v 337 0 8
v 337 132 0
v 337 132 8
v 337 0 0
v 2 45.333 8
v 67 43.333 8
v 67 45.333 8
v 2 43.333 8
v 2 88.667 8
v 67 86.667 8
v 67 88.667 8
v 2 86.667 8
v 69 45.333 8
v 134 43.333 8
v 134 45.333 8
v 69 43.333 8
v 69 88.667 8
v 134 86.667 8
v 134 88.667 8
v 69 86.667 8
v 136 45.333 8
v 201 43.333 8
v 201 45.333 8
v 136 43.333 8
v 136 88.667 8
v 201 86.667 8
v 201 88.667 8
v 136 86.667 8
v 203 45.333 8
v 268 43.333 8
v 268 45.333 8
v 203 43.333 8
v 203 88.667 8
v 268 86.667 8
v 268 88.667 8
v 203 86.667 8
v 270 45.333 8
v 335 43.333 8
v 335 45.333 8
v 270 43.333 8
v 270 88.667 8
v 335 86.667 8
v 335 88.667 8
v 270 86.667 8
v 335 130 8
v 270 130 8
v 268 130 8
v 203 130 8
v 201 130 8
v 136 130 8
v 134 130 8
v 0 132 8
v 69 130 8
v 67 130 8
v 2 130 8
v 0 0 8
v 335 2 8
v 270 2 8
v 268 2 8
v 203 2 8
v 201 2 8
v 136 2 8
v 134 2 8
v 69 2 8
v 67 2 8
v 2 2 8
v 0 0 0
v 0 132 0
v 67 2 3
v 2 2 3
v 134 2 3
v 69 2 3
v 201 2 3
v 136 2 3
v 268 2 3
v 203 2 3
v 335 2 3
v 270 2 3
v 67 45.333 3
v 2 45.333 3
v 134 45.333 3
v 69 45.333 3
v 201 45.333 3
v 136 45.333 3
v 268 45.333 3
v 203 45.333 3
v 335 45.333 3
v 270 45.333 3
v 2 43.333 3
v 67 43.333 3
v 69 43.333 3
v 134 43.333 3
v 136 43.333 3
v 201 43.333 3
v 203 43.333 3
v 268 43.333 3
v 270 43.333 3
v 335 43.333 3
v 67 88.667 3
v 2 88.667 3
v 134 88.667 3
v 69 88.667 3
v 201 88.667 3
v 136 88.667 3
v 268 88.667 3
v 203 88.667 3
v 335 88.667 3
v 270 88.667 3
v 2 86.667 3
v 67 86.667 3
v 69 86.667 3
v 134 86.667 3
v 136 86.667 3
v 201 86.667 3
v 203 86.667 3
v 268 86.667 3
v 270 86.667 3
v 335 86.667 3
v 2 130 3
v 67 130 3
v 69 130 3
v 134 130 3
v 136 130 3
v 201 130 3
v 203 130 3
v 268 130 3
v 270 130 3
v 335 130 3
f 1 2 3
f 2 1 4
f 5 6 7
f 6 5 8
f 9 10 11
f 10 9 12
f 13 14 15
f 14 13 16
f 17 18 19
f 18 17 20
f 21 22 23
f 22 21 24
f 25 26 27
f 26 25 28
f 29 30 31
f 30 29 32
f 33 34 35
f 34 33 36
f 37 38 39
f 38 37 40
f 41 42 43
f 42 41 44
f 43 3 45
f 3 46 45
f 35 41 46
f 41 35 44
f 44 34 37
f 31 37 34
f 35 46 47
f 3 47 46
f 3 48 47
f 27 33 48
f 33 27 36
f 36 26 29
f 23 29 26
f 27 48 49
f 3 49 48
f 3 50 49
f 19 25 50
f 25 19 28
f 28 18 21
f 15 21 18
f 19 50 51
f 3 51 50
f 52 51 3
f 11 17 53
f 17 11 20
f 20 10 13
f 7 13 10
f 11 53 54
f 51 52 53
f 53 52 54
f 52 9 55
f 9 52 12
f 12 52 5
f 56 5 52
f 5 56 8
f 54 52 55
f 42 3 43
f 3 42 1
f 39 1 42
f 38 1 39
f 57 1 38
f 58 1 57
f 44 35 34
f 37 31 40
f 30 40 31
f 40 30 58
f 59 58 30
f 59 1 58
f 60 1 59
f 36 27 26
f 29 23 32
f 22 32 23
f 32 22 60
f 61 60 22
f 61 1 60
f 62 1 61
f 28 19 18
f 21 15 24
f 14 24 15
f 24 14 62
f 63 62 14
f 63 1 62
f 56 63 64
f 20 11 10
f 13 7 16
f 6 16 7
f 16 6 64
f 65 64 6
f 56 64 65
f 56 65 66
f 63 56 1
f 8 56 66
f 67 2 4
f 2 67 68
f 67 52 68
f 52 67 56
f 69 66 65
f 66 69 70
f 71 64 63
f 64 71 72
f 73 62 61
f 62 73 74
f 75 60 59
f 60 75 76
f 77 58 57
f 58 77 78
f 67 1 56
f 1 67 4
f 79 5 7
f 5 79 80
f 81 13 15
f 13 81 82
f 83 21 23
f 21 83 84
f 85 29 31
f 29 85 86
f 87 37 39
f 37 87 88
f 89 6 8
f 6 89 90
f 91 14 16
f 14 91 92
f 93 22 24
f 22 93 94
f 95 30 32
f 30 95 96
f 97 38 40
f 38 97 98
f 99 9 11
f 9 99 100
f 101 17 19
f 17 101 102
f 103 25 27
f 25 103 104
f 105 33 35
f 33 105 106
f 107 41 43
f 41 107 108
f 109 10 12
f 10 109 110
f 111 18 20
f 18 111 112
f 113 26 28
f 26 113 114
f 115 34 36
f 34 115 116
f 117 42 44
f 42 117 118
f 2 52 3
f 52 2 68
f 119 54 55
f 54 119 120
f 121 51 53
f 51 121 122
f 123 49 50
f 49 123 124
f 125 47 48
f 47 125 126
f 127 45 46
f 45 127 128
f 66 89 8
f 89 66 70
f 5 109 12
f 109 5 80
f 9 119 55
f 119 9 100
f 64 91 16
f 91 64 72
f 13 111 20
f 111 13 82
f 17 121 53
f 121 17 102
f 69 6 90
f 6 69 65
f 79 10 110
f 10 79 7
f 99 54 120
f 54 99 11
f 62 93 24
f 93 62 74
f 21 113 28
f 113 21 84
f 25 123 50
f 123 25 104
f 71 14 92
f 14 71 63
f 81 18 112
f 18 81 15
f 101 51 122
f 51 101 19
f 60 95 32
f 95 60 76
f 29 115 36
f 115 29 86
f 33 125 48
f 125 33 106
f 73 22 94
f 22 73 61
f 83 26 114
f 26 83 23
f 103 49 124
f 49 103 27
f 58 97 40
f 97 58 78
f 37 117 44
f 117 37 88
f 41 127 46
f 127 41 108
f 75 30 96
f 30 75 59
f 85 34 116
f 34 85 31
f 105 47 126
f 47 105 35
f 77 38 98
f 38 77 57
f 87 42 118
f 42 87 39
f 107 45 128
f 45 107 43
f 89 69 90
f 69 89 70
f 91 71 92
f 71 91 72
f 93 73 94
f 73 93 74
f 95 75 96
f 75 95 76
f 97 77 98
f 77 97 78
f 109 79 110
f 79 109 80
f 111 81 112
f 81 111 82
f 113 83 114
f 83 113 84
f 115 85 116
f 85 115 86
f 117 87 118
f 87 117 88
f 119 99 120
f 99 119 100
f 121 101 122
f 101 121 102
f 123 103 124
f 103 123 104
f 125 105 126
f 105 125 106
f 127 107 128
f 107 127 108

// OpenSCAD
w=337;
d=132;
h=8; // 15

cube([w, d, 3]);
for (y = [0:(d-2)/3:d]) {
  color("red")
  translate([0, y, 0])
  cube([w, 2, h]);
}
for (x = [0:(w-2)/5:w]) {
  color("red")
  translate([x, 0, 0])
  cube([2, d, h]);
}
